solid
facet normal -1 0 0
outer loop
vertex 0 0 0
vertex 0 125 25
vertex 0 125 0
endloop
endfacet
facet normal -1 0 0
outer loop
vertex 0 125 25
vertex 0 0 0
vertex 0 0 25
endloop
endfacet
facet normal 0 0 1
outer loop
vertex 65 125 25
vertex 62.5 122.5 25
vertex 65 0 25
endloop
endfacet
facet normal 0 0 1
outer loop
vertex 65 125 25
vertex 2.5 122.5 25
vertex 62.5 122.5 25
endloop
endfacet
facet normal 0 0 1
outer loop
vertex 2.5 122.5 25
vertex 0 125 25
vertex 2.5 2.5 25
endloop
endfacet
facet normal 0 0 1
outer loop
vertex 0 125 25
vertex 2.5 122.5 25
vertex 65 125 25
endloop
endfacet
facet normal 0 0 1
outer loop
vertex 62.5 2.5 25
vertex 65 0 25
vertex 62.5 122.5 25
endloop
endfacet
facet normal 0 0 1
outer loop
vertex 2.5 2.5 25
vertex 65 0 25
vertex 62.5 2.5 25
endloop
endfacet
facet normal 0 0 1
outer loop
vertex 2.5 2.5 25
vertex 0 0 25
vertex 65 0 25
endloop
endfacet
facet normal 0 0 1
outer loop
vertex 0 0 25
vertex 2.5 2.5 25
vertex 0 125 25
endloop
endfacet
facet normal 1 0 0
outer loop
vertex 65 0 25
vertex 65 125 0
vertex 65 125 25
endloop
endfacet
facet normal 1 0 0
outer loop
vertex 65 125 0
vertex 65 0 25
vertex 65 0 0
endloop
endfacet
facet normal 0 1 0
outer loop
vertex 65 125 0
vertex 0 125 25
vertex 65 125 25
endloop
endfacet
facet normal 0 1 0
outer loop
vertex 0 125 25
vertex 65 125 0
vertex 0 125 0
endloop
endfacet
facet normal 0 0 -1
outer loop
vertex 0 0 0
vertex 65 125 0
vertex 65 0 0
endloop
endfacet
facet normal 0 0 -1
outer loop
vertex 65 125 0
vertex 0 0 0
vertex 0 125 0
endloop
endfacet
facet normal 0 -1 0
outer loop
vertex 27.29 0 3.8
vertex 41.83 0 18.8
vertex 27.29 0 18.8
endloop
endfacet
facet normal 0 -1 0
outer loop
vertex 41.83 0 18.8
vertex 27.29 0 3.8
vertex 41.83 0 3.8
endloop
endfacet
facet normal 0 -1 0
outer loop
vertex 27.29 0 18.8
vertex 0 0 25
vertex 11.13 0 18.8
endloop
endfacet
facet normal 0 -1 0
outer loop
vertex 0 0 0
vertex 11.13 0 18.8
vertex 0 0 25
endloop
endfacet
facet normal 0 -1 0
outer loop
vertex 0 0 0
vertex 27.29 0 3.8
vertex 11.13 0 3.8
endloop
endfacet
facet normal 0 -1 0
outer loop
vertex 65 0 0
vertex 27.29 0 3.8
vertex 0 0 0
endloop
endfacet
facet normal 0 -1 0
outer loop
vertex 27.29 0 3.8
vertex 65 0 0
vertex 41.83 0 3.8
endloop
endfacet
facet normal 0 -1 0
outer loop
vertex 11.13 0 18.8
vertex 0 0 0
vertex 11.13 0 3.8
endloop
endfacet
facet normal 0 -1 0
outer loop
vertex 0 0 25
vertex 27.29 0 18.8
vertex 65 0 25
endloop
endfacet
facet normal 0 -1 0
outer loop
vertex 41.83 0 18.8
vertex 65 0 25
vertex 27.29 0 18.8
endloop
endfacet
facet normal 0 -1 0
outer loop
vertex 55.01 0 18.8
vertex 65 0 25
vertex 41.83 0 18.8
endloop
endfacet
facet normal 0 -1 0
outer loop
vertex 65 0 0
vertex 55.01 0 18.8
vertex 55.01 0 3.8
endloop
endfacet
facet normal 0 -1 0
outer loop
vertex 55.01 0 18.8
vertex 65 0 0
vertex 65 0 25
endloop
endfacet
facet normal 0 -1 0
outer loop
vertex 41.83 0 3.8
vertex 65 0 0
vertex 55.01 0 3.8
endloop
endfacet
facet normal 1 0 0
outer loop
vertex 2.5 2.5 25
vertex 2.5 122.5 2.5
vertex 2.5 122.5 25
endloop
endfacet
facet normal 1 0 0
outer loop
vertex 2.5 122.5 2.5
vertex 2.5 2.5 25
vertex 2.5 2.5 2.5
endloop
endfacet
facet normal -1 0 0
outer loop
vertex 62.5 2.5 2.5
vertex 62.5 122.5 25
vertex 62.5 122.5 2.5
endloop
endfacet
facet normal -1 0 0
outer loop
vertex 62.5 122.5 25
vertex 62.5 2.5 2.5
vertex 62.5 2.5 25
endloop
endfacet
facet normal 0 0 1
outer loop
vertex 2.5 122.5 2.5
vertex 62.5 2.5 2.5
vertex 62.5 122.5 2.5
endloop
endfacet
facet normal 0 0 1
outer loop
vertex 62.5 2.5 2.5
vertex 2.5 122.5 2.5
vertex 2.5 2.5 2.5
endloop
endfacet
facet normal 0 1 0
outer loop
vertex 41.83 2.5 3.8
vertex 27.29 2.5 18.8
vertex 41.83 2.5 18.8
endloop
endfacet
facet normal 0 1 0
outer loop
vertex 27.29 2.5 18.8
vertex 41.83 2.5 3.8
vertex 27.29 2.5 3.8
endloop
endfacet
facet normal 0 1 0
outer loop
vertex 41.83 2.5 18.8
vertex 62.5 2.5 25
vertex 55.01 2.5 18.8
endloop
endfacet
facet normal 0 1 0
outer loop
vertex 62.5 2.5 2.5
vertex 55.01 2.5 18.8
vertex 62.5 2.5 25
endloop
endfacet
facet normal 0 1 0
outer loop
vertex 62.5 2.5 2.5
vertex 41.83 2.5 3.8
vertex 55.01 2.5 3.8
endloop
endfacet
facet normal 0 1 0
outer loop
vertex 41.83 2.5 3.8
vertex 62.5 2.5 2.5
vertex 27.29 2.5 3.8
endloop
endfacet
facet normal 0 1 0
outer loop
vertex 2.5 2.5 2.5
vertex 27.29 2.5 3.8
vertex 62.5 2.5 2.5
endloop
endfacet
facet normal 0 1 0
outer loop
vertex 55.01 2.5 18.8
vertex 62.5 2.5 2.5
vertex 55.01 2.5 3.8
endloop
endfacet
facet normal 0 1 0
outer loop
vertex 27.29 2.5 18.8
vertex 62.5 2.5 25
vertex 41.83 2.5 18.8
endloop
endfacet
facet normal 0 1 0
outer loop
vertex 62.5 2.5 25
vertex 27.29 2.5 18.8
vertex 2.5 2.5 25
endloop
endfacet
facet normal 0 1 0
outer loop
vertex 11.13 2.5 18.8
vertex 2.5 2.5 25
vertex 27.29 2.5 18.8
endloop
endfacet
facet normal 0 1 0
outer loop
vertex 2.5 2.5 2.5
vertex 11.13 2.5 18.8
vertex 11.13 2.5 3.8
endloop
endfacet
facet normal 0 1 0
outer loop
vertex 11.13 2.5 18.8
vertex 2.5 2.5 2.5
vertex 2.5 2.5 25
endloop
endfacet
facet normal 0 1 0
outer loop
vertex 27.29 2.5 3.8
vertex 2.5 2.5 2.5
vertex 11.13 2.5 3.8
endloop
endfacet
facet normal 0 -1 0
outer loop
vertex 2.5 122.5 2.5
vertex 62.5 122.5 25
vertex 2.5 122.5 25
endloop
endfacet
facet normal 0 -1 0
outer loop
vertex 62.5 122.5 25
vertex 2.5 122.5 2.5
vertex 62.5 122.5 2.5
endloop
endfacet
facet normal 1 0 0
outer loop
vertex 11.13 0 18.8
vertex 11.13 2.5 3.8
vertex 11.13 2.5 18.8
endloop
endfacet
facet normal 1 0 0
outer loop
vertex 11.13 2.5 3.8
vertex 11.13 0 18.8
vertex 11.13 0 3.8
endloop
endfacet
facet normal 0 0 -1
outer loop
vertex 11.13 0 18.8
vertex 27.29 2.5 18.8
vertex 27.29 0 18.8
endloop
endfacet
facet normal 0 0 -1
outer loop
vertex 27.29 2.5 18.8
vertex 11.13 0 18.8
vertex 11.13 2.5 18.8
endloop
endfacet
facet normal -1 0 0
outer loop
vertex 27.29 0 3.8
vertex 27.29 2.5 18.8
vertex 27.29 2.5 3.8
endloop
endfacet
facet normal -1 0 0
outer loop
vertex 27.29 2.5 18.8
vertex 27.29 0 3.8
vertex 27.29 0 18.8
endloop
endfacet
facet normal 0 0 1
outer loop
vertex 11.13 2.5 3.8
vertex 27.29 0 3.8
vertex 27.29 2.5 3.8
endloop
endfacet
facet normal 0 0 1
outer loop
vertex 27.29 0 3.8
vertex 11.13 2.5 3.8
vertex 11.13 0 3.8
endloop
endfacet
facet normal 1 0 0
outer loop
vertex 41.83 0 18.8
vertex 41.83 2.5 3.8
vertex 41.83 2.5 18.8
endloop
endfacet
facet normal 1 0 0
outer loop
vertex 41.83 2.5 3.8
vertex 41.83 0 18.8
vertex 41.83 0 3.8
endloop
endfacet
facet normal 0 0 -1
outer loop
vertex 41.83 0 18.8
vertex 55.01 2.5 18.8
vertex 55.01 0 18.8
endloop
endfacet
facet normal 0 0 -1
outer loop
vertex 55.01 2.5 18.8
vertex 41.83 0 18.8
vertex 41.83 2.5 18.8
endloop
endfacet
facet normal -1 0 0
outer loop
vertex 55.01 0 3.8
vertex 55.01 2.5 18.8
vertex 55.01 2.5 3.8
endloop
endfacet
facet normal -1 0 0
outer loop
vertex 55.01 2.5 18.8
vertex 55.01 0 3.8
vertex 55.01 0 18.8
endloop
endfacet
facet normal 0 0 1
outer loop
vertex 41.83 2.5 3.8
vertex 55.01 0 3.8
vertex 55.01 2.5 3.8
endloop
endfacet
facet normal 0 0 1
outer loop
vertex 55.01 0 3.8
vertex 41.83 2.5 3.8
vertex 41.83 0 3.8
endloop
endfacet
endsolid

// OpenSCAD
//Caixa de Acondicionamento Arduino MEGA
difference(){
cube([65,125,25]);
#translate([2.5,2.5,2.5])cube([60,120,22.5]);
#translate([(60-53.7)/2+7.48-2+2.5,0,5.8-2])cube([16.16,25,15]);
#translate([(60-53.7)/2+7.48-2+2.5+16.16-4+18.54,0,5.8-2])cube([13.18,25,15]);
}
